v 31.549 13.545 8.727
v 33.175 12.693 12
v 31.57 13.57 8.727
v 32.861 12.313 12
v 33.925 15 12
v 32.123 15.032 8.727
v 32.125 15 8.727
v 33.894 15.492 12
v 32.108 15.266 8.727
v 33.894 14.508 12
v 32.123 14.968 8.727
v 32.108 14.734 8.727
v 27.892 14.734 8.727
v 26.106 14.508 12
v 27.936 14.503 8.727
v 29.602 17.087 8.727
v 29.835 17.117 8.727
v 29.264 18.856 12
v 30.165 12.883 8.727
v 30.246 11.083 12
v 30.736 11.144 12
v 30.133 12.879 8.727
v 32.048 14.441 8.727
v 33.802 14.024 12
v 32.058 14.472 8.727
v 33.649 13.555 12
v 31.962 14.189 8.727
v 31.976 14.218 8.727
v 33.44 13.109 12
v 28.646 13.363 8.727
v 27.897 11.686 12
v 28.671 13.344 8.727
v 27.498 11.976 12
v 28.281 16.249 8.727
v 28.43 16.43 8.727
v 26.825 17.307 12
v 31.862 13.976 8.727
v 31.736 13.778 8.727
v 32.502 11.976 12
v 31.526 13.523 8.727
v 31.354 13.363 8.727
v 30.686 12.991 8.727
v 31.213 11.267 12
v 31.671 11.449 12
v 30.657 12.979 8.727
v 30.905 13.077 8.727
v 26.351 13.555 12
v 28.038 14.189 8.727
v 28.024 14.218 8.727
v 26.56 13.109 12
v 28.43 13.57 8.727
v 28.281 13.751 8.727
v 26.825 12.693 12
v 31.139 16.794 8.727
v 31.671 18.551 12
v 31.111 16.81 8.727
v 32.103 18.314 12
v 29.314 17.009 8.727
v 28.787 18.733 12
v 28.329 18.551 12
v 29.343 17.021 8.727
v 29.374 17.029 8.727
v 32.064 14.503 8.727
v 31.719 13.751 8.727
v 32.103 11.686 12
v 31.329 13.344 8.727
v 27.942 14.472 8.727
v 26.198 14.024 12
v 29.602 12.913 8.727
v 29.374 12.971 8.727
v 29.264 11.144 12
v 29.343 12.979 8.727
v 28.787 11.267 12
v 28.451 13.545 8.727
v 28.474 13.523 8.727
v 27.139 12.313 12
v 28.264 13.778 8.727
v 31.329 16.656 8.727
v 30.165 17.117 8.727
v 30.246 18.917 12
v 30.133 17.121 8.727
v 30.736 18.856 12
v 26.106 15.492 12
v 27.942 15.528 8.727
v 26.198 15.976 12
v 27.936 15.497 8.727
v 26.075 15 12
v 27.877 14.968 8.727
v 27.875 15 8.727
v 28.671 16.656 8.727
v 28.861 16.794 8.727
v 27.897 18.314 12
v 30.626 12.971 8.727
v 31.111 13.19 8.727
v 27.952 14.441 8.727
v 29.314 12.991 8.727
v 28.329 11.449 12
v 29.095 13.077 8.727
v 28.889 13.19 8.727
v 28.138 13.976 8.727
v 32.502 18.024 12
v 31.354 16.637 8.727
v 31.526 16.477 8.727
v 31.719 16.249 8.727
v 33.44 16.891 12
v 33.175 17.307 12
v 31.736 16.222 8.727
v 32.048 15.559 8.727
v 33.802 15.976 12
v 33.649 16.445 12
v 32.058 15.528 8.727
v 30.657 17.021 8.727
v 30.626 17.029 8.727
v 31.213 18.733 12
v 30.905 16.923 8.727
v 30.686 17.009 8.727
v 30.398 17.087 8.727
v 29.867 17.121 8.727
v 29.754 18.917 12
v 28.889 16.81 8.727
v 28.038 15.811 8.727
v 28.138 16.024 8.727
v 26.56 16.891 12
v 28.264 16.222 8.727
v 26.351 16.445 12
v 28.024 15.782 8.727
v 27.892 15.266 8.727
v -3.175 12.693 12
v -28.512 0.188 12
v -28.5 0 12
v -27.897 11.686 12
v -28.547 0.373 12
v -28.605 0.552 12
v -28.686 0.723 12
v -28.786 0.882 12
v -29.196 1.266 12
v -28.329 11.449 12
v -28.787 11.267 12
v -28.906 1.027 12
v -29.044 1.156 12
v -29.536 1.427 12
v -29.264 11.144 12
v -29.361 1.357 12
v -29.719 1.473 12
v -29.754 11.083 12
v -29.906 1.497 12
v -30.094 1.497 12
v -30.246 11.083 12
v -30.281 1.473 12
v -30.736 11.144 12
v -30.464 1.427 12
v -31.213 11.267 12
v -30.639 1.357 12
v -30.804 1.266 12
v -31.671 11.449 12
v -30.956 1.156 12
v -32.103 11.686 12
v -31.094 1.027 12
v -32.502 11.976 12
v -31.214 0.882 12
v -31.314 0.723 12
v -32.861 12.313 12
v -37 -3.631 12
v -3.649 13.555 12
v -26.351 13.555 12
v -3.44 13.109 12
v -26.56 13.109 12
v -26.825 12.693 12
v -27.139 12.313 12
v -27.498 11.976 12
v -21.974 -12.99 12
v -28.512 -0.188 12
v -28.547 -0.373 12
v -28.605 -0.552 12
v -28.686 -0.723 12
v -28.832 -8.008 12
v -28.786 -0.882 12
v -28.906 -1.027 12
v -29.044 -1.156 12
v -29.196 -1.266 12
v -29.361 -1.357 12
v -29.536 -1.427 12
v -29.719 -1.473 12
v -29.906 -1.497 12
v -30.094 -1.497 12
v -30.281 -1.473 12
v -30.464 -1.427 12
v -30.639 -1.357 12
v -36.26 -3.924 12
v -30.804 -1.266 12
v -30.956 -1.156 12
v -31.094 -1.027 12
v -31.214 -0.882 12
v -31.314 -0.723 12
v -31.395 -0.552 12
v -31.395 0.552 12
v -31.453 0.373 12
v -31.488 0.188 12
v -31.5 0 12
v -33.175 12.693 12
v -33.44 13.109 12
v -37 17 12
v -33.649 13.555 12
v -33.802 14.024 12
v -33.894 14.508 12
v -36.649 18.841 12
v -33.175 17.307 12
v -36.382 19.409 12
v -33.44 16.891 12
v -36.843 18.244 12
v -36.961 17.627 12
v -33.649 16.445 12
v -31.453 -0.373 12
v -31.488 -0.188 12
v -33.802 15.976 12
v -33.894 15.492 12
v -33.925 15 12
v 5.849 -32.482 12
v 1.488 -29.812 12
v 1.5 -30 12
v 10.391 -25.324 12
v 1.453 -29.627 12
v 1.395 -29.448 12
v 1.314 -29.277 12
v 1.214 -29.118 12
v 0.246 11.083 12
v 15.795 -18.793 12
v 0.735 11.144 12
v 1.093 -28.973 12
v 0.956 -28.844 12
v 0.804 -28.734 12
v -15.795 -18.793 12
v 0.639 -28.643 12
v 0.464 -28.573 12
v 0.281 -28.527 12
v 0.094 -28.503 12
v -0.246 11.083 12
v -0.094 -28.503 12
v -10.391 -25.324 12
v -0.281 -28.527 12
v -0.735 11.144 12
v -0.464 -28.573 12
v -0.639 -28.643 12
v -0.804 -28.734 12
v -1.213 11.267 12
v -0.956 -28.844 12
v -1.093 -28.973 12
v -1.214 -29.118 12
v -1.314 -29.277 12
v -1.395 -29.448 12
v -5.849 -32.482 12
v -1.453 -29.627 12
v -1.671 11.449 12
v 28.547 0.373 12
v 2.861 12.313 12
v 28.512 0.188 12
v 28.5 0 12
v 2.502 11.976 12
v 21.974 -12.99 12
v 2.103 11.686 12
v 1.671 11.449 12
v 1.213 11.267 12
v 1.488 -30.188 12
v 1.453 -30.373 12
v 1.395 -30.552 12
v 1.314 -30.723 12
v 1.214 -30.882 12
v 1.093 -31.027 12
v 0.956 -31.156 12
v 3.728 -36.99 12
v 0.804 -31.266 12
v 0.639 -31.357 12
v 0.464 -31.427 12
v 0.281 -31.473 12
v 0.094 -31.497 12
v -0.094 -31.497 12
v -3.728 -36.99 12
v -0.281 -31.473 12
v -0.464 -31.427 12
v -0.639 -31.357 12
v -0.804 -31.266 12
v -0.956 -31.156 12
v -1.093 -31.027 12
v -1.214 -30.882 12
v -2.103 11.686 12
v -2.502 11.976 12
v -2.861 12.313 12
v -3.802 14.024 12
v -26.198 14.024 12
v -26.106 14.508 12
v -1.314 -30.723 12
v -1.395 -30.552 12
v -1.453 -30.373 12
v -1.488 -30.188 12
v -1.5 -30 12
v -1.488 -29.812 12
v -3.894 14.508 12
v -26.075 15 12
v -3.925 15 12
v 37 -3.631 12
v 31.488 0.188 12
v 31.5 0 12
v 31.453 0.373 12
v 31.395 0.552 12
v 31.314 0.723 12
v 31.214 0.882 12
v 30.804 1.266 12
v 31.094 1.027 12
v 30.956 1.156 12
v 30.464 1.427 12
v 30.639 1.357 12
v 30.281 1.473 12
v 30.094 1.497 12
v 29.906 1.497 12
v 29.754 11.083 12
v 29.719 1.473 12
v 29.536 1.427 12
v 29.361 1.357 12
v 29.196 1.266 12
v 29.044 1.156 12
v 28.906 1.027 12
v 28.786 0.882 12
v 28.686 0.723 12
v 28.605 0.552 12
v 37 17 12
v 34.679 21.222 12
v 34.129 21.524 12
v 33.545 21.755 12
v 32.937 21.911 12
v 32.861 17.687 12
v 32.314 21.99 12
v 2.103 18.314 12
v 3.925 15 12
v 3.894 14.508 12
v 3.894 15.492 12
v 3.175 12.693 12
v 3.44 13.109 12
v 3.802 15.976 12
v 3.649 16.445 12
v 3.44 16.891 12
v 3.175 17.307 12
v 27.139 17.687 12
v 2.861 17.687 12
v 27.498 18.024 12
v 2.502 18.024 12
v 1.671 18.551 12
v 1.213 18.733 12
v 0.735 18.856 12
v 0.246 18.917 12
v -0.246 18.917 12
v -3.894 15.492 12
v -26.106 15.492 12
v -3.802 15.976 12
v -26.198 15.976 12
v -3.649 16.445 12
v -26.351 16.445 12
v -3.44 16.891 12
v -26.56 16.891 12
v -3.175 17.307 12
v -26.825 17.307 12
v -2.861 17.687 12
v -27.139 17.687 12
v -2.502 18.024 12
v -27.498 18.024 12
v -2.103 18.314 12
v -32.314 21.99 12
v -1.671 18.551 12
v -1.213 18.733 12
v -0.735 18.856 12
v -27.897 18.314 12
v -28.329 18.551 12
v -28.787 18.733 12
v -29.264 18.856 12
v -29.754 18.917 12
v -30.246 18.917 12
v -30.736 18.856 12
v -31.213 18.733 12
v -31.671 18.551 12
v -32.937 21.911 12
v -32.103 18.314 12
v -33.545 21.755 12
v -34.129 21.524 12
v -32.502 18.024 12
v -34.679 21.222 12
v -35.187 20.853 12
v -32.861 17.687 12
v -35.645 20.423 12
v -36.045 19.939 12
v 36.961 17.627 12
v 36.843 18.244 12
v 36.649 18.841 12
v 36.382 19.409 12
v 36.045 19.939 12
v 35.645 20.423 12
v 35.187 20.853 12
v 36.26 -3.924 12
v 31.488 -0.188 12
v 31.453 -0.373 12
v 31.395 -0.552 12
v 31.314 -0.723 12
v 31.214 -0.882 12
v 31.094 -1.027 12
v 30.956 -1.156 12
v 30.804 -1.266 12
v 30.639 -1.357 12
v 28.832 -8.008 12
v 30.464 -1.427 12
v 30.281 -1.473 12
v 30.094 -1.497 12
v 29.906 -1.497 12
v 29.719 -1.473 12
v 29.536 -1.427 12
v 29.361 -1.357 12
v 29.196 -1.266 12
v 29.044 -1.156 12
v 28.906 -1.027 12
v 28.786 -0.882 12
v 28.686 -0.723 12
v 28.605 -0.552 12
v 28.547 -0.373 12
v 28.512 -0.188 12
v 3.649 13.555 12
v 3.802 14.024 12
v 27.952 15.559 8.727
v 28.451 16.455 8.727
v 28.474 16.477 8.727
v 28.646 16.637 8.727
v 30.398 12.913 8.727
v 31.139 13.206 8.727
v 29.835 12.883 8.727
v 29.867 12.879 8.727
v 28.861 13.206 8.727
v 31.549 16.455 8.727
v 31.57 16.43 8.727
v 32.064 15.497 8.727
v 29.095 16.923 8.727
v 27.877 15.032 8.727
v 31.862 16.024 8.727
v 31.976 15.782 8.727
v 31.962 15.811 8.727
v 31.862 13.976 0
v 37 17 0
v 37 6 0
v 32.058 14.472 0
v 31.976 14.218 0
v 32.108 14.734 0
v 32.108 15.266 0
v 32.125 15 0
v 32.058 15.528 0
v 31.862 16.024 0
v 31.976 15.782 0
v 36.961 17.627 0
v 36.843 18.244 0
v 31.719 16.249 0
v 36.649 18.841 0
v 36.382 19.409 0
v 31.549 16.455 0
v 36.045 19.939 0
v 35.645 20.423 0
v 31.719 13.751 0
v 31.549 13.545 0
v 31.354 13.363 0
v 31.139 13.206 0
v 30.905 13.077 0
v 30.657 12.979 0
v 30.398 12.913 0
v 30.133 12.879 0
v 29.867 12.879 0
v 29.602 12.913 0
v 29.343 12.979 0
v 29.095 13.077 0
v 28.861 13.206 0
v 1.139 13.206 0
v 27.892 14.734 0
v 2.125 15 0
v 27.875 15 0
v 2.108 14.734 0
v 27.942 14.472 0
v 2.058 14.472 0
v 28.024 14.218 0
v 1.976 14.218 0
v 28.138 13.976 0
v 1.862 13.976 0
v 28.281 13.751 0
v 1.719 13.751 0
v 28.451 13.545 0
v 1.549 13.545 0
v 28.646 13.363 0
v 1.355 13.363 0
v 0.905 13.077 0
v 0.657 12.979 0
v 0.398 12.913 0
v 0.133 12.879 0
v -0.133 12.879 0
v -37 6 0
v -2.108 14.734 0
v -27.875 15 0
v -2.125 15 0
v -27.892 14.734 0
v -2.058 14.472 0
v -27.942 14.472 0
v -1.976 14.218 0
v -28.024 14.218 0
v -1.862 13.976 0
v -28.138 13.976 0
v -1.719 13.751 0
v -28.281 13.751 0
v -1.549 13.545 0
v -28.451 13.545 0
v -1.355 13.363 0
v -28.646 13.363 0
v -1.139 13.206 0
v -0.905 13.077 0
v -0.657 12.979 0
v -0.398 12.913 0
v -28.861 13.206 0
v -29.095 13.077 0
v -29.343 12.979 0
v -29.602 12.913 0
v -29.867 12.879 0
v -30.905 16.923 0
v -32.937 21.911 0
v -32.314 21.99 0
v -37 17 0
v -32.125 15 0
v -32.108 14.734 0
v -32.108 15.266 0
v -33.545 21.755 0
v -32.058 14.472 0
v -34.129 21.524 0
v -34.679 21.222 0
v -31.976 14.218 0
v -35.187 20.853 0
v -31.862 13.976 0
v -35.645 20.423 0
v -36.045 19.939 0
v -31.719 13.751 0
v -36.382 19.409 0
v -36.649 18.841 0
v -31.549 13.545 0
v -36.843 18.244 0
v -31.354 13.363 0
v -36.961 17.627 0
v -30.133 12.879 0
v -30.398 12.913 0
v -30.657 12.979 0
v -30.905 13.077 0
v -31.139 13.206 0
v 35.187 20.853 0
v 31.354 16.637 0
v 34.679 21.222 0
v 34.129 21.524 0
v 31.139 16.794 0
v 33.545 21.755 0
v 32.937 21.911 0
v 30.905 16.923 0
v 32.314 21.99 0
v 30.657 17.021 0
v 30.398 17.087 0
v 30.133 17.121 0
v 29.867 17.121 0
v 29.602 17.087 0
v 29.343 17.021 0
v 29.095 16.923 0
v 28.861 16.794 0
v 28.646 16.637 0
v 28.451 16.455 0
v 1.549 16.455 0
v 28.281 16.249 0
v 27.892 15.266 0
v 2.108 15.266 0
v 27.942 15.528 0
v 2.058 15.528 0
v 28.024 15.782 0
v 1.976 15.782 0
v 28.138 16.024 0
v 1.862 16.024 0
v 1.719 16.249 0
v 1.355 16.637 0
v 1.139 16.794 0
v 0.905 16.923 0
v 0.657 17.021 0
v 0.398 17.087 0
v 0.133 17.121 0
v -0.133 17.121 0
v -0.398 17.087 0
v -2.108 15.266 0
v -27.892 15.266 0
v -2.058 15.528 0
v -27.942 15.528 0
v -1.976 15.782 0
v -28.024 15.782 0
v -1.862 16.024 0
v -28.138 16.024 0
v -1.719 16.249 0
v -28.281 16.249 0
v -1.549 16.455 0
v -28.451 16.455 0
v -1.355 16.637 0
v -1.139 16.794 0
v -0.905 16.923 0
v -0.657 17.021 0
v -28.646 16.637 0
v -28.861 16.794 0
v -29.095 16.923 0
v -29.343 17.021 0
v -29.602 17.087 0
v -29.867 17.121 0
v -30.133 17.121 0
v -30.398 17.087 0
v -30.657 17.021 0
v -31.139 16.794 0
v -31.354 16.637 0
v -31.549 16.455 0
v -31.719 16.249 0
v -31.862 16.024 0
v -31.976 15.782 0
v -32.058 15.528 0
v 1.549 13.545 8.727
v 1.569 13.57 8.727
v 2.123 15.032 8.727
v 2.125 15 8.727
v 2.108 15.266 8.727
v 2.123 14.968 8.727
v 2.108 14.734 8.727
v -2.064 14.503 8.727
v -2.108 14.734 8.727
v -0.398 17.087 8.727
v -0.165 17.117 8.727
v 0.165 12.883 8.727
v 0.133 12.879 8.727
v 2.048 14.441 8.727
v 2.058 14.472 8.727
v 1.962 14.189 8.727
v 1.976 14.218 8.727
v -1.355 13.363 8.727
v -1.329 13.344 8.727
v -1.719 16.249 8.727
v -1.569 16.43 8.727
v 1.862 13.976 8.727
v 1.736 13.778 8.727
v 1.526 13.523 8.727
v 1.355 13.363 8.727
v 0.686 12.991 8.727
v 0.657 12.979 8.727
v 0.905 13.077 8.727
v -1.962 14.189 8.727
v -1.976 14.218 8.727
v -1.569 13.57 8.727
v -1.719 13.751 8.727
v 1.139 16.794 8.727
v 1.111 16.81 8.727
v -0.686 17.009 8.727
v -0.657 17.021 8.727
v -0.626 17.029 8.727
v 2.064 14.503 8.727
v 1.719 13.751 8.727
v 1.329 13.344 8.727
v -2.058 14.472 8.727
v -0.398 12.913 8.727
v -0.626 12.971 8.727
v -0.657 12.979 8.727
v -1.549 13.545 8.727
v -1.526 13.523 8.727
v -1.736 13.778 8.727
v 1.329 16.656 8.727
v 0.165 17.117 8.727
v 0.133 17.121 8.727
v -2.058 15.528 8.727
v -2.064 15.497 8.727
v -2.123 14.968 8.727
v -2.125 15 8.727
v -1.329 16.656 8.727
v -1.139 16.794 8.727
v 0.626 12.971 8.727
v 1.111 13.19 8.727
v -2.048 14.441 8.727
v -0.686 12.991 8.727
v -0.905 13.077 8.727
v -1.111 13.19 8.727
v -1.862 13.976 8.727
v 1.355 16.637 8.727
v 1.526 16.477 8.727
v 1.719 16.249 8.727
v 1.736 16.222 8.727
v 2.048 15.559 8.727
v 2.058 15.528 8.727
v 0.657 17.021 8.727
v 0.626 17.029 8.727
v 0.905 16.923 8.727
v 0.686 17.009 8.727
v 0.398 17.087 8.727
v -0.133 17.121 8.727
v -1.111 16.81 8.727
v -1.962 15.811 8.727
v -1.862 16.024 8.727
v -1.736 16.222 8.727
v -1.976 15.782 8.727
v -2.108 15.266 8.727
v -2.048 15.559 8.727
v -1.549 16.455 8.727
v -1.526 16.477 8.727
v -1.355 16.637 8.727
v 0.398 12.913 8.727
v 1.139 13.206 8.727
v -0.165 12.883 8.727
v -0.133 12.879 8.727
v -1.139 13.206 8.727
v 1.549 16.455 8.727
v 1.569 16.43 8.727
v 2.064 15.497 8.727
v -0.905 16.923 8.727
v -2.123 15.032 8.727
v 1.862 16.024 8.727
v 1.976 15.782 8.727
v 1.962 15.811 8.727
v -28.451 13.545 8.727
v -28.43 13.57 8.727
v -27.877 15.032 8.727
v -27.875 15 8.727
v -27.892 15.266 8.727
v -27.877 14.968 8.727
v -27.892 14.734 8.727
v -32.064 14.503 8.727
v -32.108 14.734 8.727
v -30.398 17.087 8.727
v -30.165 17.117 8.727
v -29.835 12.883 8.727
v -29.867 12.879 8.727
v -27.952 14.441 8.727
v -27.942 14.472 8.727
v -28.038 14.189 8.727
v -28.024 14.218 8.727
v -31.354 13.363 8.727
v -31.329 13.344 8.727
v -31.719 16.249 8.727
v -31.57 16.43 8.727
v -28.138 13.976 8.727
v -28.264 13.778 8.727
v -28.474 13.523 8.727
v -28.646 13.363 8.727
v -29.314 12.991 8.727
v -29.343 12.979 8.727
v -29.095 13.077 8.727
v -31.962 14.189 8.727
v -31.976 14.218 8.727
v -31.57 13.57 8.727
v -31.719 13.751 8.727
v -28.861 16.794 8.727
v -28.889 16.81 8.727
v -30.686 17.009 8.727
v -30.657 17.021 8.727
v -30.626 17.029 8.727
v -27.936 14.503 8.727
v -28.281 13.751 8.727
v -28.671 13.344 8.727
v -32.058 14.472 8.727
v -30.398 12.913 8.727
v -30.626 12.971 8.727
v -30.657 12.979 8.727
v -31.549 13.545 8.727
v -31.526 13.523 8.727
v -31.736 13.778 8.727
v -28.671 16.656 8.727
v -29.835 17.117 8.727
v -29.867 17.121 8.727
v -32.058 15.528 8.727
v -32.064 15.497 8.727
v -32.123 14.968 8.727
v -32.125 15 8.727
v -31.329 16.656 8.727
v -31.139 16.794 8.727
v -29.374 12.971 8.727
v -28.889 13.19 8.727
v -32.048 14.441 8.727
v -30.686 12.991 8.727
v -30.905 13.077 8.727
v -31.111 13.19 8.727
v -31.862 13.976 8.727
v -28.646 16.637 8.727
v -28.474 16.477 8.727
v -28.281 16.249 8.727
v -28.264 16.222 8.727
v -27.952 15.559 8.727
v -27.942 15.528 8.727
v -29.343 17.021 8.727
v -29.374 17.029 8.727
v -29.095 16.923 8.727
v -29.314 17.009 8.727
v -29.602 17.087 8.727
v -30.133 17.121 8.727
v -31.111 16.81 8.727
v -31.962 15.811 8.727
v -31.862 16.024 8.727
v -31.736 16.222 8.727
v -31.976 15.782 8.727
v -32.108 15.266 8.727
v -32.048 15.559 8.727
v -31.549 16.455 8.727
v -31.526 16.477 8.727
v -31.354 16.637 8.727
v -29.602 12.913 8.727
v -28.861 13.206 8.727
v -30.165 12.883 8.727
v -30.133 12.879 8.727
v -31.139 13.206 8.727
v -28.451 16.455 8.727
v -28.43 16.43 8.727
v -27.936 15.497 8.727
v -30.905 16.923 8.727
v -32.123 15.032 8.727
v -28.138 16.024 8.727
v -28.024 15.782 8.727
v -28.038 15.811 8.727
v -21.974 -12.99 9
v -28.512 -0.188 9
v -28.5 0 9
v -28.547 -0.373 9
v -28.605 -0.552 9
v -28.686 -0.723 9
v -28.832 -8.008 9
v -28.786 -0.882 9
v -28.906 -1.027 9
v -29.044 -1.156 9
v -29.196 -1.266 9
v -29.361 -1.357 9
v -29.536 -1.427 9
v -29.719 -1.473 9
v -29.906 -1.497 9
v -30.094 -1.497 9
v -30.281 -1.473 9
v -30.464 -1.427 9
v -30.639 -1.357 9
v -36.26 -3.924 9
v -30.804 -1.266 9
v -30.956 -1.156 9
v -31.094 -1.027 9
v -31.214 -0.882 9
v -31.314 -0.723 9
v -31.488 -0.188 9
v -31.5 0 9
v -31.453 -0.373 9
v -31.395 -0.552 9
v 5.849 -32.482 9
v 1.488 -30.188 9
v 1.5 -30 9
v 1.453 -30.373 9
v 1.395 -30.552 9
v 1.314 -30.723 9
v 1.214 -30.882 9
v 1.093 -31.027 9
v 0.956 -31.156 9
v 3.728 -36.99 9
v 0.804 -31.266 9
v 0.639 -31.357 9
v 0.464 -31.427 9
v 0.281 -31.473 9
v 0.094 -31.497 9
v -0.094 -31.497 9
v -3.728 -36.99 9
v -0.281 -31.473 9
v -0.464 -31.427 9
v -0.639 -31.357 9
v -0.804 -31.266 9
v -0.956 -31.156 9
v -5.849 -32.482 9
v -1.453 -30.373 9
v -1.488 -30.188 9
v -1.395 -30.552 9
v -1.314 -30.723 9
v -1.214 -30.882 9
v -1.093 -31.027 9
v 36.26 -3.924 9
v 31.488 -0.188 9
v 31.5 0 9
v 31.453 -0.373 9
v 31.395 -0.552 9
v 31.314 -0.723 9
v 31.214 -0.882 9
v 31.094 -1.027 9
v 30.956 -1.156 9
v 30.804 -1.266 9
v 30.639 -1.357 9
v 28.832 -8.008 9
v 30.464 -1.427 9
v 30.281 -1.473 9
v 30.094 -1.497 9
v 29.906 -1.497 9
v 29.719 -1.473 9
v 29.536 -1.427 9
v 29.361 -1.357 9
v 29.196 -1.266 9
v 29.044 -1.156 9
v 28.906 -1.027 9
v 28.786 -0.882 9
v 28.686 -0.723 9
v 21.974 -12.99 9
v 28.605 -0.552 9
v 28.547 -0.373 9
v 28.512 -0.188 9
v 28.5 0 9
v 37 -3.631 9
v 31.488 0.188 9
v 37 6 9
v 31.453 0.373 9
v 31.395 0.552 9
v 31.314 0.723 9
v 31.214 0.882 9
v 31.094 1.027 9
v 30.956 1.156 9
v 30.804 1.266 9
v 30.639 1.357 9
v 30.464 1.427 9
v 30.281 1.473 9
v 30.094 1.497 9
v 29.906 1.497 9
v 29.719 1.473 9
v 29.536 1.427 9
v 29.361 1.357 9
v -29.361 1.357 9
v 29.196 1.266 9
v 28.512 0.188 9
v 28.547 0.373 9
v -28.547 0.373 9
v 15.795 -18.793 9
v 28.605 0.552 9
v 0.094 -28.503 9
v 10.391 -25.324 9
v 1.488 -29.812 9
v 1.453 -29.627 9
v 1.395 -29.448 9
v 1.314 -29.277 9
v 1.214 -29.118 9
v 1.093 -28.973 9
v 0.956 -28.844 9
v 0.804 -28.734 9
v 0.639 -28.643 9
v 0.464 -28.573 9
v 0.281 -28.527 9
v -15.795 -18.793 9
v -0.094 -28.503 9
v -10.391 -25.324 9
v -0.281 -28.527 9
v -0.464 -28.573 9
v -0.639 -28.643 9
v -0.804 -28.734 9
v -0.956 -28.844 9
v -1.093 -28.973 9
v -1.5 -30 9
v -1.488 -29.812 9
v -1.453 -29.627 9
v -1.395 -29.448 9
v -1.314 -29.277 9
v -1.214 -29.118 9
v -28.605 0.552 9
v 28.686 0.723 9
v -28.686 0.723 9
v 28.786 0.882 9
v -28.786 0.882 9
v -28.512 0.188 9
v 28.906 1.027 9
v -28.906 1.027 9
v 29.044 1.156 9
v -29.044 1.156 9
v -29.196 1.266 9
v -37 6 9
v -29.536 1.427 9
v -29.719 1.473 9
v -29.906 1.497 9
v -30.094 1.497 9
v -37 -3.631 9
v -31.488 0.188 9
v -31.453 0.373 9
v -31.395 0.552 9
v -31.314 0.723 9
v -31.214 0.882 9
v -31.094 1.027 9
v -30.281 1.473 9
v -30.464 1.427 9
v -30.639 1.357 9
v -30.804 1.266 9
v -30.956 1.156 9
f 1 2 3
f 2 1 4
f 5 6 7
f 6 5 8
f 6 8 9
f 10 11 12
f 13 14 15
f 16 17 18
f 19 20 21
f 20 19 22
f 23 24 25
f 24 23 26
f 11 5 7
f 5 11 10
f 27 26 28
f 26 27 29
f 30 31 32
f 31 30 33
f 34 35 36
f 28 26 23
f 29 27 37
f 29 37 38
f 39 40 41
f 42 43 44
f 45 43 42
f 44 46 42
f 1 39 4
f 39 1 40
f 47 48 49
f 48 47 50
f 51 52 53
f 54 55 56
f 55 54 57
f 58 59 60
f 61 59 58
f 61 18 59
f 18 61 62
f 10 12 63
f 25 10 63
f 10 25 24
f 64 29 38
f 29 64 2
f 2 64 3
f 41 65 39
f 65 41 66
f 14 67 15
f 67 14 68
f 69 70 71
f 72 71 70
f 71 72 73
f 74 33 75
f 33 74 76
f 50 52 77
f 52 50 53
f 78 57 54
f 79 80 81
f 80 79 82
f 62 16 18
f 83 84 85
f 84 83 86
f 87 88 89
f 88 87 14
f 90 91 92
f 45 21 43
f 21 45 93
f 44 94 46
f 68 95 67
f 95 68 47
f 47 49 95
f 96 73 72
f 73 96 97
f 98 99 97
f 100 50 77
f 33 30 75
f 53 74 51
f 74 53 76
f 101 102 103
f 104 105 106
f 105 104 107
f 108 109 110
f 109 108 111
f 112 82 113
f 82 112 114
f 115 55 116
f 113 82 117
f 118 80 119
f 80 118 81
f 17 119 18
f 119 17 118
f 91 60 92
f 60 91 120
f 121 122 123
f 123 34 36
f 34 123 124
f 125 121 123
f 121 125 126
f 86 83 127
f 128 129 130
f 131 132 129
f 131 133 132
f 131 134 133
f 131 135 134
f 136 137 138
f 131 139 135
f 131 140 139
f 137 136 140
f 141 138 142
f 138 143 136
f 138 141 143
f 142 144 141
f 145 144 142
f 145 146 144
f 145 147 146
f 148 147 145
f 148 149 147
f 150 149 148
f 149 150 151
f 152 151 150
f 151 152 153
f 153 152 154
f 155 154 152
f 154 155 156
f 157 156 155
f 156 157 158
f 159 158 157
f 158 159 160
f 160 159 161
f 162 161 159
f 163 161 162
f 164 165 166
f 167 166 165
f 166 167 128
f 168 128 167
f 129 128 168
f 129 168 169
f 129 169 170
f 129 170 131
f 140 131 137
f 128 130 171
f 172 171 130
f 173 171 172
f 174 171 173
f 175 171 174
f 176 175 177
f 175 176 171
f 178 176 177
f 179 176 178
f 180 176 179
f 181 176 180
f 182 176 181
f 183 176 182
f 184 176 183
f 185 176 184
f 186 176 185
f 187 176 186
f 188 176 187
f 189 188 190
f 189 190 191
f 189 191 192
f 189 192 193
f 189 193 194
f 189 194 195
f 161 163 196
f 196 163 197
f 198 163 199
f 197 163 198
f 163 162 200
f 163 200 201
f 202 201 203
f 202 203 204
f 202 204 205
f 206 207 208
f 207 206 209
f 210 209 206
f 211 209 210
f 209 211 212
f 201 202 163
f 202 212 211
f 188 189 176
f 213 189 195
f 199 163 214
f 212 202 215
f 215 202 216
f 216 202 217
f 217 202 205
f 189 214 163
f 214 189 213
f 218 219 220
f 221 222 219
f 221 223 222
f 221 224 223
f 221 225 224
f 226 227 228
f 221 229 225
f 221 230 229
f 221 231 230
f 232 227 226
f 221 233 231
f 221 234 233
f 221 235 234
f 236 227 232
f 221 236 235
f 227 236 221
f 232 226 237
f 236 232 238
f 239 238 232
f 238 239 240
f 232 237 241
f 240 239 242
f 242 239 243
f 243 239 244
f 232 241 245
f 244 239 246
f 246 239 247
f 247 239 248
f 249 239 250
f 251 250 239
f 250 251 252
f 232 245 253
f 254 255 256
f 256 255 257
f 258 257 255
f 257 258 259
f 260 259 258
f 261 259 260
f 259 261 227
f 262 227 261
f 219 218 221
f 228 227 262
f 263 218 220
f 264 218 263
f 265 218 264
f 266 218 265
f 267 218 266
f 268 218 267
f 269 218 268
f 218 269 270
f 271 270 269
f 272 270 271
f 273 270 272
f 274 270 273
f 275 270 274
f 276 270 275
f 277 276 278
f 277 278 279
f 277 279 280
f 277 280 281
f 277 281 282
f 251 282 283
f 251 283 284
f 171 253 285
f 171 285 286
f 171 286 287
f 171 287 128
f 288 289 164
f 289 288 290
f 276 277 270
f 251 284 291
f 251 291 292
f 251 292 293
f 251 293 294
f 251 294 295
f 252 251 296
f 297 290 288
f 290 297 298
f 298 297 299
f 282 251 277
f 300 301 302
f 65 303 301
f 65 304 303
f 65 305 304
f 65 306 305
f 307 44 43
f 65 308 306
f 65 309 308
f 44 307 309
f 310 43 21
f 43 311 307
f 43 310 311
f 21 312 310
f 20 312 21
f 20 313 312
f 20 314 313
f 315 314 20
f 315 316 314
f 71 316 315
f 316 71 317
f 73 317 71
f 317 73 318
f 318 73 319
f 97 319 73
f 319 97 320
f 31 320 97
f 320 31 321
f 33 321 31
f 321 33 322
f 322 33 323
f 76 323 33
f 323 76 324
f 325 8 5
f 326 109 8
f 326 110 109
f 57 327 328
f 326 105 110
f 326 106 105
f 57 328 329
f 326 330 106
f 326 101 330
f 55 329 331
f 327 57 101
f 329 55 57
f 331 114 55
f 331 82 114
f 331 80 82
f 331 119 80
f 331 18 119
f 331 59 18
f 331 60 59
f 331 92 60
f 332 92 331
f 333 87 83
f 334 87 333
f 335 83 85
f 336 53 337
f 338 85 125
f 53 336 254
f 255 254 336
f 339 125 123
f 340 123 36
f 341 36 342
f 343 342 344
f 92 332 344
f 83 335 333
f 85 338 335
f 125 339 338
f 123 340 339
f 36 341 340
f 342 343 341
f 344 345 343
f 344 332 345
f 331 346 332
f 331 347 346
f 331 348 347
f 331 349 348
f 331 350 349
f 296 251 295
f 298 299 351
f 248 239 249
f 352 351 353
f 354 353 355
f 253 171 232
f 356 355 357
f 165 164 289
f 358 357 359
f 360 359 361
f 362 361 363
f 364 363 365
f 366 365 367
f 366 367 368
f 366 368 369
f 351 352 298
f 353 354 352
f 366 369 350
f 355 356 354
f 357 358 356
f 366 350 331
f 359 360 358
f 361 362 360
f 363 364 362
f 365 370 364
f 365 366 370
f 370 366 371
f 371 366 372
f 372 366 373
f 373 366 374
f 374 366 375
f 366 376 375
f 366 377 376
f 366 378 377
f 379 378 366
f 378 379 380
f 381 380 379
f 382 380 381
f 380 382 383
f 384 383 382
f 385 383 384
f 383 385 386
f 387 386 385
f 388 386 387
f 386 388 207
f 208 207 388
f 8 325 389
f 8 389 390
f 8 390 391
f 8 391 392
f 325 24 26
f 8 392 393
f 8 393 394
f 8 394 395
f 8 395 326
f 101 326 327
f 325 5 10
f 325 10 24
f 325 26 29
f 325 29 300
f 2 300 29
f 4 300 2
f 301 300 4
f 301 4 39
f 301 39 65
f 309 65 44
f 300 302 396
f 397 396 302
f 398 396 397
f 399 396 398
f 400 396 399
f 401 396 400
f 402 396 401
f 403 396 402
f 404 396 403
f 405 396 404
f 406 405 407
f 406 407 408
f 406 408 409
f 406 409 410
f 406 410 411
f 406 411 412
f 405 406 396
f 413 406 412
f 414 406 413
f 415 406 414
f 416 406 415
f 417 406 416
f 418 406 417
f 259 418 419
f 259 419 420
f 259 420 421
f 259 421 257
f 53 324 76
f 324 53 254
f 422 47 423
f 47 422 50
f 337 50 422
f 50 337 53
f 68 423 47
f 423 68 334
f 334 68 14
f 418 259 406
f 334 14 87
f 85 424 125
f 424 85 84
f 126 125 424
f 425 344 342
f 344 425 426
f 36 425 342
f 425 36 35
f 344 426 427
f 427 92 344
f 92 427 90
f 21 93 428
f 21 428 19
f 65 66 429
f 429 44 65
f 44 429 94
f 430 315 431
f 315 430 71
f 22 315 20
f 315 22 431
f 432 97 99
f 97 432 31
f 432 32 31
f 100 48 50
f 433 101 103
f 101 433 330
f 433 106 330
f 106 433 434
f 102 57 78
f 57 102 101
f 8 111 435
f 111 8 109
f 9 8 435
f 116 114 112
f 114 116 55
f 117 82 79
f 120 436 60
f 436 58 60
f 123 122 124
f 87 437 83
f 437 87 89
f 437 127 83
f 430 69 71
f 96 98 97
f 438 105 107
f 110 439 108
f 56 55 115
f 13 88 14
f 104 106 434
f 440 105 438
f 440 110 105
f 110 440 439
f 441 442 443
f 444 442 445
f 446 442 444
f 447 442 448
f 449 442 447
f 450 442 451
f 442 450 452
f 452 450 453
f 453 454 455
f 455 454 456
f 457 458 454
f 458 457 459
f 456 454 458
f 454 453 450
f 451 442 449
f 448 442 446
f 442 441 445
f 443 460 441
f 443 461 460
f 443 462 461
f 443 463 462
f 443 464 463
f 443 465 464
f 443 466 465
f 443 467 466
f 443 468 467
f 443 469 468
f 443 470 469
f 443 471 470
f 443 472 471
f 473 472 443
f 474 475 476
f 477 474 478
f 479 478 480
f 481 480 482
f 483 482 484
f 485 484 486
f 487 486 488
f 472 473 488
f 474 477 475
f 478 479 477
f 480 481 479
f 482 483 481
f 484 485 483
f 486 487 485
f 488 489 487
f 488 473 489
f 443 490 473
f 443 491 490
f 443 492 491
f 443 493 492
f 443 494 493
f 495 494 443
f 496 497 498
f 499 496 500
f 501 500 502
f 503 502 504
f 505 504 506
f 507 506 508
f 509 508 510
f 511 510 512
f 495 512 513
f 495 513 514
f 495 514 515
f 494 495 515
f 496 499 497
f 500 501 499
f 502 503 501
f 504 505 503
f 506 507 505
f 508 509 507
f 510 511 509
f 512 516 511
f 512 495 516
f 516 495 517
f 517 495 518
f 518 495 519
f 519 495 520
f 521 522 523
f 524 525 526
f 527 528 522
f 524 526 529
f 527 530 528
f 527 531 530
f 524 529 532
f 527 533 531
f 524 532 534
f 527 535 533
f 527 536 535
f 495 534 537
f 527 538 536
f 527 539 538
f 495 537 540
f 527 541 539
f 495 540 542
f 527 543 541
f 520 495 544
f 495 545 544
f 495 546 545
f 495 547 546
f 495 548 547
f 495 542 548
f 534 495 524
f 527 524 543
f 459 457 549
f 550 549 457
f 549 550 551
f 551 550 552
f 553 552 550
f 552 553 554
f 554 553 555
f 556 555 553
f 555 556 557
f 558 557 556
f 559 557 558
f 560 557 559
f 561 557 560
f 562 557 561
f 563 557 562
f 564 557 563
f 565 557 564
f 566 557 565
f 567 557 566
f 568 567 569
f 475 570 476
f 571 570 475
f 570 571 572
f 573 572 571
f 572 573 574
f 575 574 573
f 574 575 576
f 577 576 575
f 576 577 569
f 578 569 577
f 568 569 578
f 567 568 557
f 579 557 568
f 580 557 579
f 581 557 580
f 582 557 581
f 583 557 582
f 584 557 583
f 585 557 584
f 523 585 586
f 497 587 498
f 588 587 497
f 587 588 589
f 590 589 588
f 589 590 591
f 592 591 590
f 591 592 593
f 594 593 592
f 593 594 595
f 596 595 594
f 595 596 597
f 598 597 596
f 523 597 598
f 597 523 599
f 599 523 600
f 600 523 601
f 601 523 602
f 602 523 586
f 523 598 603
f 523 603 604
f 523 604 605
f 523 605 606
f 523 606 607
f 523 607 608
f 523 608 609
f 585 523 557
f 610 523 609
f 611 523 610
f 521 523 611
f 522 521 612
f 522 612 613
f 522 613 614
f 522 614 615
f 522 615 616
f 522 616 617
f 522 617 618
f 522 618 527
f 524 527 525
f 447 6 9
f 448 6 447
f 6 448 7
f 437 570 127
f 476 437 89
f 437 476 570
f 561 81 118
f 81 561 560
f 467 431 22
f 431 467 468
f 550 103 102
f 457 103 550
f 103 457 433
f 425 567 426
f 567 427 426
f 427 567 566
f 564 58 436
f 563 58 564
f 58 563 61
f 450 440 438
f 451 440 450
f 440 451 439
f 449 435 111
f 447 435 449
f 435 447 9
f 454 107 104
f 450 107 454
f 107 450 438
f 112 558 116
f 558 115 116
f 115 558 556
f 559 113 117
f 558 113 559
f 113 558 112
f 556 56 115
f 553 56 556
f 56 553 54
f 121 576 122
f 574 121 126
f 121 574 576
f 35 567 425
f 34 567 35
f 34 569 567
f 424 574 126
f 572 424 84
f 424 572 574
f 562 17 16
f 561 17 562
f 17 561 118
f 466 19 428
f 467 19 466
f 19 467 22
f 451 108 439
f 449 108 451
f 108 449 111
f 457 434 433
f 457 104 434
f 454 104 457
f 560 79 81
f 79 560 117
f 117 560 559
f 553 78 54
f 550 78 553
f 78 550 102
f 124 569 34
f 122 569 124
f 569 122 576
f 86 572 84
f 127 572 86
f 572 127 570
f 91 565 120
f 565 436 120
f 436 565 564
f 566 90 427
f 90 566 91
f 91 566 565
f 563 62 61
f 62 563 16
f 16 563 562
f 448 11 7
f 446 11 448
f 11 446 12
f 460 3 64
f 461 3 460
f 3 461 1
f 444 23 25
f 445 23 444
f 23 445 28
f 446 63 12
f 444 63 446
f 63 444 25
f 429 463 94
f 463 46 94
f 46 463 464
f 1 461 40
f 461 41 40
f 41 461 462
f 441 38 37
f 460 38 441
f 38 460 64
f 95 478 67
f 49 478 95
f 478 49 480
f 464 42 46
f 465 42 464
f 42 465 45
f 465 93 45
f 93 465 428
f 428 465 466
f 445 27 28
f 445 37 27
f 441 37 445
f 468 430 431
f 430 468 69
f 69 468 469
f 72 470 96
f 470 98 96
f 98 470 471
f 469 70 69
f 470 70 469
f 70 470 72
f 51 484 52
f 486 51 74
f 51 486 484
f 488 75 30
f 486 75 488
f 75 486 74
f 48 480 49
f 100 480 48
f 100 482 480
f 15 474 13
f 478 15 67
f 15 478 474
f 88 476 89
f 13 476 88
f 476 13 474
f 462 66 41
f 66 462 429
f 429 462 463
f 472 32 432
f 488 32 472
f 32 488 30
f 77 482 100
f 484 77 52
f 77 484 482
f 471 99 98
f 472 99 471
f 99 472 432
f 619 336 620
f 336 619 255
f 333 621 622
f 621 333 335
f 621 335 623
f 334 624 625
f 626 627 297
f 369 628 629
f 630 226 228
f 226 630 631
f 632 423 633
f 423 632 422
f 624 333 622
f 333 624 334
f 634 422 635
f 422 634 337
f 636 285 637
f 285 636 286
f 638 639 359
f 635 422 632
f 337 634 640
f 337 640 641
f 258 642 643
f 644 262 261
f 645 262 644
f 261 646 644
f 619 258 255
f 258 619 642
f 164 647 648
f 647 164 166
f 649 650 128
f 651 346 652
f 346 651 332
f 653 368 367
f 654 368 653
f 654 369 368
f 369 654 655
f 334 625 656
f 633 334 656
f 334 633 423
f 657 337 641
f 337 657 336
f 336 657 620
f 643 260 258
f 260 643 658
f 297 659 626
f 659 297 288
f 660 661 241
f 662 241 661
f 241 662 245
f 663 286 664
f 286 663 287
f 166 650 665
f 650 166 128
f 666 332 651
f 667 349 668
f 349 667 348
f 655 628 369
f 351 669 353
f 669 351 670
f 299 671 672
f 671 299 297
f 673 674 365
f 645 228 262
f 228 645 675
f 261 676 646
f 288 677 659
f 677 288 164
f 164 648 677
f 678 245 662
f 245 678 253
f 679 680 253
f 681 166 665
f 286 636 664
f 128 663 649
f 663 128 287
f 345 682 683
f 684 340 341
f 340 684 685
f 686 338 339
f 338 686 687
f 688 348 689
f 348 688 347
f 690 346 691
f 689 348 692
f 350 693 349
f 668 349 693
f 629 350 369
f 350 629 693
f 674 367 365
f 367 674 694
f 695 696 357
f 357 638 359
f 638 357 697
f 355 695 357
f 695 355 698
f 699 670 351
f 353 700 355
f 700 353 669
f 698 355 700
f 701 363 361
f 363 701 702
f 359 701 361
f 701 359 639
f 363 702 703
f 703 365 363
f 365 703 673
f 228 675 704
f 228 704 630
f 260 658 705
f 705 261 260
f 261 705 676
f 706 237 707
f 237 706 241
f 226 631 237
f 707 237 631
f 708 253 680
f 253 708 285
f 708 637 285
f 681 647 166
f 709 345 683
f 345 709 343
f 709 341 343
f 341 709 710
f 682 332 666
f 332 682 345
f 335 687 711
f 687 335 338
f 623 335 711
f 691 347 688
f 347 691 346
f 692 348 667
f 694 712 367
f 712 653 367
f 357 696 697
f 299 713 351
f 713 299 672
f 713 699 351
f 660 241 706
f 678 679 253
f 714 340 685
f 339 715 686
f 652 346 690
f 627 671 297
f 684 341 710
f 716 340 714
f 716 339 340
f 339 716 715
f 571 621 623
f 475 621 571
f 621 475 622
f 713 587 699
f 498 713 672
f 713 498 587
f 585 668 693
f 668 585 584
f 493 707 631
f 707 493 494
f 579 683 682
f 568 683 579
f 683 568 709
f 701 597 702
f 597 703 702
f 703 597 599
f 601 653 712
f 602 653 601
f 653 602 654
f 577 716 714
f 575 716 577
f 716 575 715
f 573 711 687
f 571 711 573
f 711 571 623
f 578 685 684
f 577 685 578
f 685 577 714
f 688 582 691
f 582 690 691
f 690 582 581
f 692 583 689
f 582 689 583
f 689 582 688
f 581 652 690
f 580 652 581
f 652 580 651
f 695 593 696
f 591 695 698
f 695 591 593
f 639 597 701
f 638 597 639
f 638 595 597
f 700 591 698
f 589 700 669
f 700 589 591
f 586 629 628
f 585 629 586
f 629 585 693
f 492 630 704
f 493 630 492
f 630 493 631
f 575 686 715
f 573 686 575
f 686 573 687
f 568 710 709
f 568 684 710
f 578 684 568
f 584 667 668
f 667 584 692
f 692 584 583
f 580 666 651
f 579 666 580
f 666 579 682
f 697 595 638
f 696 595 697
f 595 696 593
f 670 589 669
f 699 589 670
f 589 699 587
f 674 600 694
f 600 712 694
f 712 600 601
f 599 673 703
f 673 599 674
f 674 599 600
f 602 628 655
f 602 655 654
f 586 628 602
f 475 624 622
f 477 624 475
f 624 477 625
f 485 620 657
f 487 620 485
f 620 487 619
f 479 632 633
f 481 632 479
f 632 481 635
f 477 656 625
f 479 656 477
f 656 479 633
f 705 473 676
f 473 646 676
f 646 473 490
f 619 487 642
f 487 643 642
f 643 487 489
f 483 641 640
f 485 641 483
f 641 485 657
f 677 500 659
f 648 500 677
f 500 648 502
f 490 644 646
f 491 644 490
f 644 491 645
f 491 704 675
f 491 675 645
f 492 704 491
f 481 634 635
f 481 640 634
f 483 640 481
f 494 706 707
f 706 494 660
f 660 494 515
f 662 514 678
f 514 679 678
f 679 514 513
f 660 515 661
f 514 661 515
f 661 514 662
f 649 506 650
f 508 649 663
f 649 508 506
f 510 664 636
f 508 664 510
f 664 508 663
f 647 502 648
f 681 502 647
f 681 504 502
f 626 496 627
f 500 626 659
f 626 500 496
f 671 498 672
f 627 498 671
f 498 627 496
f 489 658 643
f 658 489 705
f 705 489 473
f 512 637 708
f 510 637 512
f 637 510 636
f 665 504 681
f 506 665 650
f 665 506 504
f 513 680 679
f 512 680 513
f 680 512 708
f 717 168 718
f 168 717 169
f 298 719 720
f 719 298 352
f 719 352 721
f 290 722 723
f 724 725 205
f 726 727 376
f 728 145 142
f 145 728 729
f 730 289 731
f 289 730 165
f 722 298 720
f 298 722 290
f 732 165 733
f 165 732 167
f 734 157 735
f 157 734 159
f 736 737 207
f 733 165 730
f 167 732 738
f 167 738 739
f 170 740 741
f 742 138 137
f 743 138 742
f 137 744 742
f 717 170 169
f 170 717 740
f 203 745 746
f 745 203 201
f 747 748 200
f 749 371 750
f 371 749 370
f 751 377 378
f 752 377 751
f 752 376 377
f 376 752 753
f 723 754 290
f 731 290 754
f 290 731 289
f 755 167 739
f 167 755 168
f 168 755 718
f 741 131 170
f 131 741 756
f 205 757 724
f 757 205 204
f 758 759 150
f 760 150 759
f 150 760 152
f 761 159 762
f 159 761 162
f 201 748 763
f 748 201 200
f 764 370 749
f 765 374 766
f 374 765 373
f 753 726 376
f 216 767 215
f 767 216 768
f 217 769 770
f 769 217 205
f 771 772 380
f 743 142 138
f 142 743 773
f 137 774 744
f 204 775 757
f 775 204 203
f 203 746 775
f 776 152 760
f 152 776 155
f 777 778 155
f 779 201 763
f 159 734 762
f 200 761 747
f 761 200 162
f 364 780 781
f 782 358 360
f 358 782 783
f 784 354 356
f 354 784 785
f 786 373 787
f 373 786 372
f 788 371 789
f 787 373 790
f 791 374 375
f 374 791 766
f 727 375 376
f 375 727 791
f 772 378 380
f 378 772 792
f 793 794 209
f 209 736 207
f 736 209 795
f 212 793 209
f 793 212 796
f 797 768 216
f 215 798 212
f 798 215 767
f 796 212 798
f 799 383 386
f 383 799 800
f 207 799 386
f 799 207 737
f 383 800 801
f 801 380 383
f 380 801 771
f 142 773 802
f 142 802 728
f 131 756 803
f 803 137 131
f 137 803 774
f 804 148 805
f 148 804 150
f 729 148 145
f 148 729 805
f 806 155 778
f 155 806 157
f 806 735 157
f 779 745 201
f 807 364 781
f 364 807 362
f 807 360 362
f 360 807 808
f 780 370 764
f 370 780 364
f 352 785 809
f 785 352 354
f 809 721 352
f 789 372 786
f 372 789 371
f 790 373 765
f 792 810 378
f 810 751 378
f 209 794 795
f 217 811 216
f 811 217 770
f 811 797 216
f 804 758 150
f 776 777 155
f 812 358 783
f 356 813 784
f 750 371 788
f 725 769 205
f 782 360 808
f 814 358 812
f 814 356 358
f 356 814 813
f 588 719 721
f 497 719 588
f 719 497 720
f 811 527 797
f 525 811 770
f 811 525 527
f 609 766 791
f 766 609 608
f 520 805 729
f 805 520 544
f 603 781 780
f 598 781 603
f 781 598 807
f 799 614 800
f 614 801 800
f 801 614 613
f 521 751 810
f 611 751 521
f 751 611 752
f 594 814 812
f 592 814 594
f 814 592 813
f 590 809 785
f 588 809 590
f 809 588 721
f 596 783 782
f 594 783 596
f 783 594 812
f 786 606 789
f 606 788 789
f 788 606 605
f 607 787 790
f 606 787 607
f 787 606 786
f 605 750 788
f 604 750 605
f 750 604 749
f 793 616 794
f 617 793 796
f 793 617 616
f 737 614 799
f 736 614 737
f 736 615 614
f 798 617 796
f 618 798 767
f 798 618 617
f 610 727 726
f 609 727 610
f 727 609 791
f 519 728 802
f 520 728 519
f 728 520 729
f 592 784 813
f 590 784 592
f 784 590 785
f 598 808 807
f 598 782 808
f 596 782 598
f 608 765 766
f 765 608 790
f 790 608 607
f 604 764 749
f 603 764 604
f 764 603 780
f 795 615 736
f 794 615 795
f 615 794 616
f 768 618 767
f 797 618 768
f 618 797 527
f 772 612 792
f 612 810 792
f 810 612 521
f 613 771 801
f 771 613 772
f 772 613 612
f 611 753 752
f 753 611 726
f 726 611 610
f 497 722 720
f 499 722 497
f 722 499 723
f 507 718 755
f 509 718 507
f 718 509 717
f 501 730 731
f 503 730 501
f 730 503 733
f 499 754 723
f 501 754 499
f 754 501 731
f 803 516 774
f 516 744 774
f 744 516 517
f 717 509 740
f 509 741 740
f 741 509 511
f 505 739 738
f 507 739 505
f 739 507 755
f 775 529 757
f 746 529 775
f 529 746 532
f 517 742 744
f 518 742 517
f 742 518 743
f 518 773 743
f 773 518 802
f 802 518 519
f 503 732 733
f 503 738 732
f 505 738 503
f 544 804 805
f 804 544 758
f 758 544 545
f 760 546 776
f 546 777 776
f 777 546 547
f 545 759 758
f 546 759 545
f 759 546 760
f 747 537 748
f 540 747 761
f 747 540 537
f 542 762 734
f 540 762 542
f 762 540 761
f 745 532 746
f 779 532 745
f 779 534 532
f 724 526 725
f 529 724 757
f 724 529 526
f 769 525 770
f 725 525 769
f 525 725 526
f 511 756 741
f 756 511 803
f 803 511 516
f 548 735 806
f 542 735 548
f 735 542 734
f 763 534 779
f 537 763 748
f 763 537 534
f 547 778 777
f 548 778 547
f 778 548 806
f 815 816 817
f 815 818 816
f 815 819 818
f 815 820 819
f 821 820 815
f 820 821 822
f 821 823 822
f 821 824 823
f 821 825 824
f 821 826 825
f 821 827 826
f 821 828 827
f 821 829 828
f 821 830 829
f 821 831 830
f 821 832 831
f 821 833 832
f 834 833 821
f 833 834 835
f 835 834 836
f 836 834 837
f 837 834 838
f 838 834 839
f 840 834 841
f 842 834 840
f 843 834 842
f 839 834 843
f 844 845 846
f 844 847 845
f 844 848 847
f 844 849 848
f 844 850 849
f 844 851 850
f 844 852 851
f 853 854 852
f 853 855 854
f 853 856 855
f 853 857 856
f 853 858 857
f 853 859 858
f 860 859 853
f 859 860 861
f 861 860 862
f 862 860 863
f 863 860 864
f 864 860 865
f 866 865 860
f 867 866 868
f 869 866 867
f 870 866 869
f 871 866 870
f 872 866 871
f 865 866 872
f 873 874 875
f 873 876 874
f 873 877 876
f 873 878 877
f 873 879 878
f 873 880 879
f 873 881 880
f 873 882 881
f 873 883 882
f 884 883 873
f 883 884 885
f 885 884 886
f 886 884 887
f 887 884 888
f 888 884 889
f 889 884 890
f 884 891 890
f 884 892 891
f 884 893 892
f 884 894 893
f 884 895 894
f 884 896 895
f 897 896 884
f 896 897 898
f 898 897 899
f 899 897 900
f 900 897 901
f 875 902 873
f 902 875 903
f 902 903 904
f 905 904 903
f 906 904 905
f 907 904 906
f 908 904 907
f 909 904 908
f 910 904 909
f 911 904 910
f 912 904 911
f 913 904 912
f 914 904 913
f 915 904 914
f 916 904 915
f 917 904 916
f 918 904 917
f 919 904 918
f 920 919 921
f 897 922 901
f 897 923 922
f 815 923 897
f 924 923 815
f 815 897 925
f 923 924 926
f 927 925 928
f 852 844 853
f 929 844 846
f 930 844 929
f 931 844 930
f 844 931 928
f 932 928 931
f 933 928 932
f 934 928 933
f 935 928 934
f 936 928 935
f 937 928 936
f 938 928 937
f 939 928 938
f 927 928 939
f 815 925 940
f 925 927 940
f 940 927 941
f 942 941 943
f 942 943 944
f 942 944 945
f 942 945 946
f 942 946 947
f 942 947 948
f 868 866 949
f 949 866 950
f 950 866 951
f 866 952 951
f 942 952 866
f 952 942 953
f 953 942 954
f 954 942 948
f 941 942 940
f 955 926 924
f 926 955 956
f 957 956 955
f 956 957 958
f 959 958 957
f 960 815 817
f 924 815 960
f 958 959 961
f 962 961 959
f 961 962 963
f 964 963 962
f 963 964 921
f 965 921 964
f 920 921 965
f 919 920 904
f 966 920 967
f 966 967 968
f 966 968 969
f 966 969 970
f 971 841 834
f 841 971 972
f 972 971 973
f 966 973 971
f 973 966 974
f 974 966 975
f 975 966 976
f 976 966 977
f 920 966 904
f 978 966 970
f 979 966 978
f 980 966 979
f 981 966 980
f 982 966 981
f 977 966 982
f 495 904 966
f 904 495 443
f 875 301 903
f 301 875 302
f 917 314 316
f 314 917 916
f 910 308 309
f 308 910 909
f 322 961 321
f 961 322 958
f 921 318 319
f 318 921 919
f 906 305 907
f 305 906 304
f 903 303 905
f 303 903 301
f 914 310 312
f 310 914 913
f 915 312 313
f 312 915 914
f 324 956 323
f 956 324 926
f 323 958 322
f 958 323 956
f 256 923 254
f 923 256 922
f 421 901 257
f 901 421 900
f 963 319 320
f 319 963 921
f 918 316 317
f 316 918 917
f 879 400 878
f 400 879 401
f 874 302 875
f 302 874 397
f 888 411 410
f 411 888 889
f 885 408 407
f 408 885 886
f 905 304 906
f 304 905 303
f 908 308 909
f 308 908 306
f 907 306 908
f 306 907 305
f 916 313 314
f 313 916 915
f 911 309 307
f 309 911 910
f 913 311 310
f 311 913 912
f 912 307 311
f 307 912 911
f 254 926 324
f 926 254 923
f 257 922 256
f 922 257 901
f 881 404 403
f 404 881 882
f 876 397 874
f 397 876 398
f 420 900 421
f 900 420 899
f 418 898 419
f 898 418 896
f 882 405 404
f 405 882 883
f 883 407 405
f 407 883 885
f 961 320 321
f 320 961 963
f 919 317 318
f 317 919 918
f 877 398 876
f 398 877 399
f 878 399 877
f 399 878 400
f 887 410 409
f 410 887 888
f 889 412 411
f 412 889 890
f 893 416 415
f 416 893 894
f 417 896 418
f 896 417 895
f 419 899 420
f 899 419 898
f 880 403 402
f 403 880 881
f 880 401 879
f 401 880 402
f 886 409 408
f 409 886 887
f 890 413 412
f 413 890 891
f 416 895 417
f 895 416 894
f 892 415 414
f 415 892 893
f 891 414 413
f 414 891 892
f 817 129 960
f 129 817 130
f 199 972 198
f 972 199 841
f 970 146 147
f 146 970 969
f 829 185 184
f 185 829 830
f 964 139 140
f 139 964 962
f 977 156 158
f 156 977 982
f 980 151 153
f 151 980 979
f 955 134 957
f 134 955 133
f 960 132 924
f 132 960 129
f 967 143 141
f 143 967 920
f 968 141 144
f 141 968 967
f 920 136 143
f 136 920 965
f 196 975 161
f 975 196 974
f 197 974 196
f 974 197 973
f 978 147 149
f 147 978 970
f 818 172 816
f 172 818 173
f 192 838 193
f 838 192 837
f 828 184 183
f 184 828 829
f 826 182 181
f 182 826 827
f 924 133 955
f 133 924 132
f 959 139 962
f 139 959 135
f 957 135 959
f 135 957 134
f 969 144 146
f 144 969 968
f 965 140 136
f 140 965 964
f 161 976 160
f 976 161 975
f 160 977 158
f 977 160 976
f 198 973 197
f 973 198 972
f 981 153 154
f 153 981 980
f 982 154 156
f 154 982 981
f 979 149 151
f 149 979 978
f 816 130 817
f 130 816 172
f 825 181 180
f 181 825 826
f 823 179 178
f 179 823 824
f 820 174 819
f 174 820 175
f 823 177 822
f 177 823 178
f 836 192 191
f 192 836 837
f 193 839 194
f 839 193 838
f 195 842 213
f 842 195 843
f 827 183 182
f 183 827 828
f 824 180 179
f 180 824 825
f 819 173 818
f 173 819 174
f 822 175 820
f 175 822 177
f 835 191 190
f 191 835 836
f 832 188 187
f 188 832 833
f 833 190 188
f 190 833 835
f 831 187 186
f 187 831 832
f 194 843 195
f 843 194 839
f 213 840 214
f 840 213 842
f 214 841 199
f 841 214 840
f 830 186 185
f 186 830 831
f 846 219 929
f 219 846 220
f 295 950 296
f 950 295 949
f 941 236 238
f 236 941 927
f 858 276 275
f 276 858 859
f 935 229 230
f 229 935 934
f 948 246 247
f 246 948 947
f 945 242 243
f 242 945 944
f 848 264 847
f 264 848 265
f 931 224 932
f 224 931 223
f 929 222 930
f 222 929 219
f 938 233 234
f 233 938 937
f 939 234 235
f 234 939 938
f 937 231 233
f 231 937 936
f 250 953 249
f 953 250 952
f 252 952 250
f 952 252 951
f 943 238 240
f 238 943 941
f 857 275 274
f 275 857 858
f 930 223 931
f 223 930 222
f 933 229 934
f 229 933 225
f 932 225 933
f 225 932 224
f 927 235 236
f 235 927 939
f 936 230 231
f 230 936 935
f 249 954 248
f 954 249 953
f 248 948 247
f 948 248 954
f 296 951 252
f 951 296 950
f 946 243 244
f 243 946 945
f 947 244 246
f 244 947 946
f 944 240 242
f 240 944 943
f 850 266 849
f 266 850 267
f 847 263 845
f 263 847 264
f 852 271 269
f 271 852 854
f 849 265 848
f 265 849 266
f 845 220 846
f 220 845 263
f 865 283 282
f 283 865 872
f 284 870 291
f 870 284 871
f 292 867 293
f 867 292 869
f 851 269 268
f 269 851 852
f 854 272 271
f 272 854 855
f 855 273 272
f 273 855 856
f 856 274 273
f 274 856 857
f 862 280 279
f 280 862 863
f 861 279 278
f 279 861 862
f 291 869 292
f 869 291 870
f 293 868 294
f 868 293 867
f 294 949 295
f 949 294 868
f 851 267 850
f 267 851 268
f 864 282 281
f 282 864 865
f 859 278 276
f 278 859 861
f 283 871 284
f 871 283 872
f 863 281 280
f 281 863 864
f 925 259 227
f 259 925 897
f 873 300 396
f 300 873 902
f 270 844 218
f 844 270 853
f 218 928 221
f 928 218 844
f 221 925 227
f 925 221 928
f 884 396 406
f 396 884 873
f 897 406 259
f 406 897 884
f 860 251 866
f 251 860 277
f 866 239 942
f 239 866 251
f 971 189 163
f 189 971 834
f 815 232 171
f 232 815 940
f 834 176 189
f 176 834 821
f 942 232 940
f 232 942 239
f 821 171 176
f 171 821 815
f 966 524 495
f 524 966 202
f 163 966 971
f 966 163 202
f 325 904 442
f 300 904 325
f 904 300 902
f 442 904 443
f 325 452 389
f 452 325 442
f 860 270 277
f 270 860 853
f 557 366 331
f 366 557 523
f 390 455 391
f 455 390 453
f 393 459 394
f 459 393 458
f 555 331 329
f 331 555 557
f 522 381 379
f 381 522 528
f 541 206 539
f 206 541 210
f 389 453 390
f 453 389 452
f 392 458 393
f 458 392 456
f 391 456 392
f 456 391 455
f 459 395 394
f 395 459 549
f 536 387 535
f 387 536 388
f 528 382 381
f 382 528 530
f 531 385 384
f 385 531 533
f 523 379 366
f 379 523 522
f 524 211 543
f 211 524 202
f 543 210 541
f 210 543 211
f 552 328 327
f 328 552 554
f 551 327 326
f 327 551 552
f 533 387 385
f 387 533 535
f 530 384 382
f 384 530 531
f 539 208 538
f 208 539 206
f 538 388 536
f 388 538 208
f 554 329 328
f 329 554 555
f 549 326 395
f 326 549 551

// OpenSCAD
$fn = 50;


difference() {
	union() {
		translate(v = [0, -7.5000000000, 0]) {
			hull() {
				translate(v = [-32.0000000000, 24.5000000000, 0]) {
					cylinder(h = 12, r = 5);
				}
				translate(v = [32.0000000000, 24.5000000000, 0]) {
					cylinder(h = 12, r = 5);
				}
				translate(v = [-32.0000000000, -24.5000000000, 0]) {
					cylinder(h = 12, r = 5);
				}
				translate(v = [32.0000000000, -24.5000000000, 0]) {
					cylinder(h = 12, r = 5);
				}
			}
		}
	}
	union() {
		translate(v = [30, 15, 12]) {
			rotate(a = [0, 0, 0]) {
				difference() {
					union() {
						translate(v = [0, 0, -3.5000000000]) {
							cylinder(h = 3.5000000000, r1 = 2.0000000000, r2 = 3.9250000000);
						}
						translate(v = [0, 0, -12.0000000000]) {
							cylinder(h = 12, r = 2.0000000000);
						}
						translate(v = [0, 0, -12.0000000000]) {
							cylinder(h = 12, r = 2.1250000000);
						}
						translate(v = [0, 0, -12.0000000000]) {
							cylinder(h = 12, r = 2.0000000000);
						}
					}
					union();
				}
			}
		}
		translate(v = [0, 15, 12]) {
			rotate(a = [0, 0, 0]) {
				difference() {
					union() {
						translate(v = [0, 0, -3.5000000000]) {
							cylinder(h = 3.5000000000, r1 = 2.0000000000, r2 = 3.9250000000);
						}
						translate(v = [0, 0, -12.0000000000]) {
							cylinder(h = 12, r = 2.0000000000);
						}
						translate(v = [0, 0, -12.0000000000]) {
							cylinder(h = 12, r = 2.1250000000);
						}
						translate(v = [0, 0, -12.0000000000]) {
							cylinder(h = 12, r = 2.0000000000);
						}
					}
					union();
				}
			}
		}
		translate(v = [-30, 15, 12]) {
			rotate(a = [0, 0, 0]) {
				difference() {
					union() {
						translate(v = [0, 0, -3.5000000000]) {
							cylinder(h = 3.5000000000, r1 = 2.0000000000, r2 = 3.9250000000);
						}
						translate(v = [0, 0, -12.0000000000]) {
							cylinder(h = 12, r = 2.0000000000);
						}
						translate(v = [0, 0, -12.0000000000]) {
							cylinder(h = 12, r = 2.1250000000);
						}
						translate(v = [0, 0, -12.0000000000]) {
							cylinder(h = 12, r = 2.0000000000);
						}
					}
					union();
				}
			}
		}
		translate(v = [-250.0000000000, -494, -491]) {
			cube(size = [500, 500, 500]);
		}
		translate(v = [-250.0000000000, -494, -491]) {
			cube(size = [500, 500, 500]);
		}
		translate(v = [-250.0000000000, -494, -491]) {
			cube(size = [500, 500, 500]);
		}
		translate(v = [30, 0, -100.0000000000]) {
			cylinder(h = 200, r = 1.5000000000);
		}
		translate(v = [-30, 0, -100.0000000000]) {
			cylinder(h = 200, r = 1.5000000000);
		}
		translate(v = [0, -30, -100.0000000000]) {
			cylinder(h = 200, r = 1.5000000000);
		}
		translate(v = [0, 30, -100.0000000000]) {
			cylinder(h = 200, r = 1.5000000000);
		}
		translate(v = [65, -65, 0.0000000000]) {
			cylinder(h = 12, r = 67.5000000000);
		}
		translate(v = [-65, -65, 0.0000000000]) {
			cylinder(h = 12, r = 67.5000000000);
		}
	}
}
